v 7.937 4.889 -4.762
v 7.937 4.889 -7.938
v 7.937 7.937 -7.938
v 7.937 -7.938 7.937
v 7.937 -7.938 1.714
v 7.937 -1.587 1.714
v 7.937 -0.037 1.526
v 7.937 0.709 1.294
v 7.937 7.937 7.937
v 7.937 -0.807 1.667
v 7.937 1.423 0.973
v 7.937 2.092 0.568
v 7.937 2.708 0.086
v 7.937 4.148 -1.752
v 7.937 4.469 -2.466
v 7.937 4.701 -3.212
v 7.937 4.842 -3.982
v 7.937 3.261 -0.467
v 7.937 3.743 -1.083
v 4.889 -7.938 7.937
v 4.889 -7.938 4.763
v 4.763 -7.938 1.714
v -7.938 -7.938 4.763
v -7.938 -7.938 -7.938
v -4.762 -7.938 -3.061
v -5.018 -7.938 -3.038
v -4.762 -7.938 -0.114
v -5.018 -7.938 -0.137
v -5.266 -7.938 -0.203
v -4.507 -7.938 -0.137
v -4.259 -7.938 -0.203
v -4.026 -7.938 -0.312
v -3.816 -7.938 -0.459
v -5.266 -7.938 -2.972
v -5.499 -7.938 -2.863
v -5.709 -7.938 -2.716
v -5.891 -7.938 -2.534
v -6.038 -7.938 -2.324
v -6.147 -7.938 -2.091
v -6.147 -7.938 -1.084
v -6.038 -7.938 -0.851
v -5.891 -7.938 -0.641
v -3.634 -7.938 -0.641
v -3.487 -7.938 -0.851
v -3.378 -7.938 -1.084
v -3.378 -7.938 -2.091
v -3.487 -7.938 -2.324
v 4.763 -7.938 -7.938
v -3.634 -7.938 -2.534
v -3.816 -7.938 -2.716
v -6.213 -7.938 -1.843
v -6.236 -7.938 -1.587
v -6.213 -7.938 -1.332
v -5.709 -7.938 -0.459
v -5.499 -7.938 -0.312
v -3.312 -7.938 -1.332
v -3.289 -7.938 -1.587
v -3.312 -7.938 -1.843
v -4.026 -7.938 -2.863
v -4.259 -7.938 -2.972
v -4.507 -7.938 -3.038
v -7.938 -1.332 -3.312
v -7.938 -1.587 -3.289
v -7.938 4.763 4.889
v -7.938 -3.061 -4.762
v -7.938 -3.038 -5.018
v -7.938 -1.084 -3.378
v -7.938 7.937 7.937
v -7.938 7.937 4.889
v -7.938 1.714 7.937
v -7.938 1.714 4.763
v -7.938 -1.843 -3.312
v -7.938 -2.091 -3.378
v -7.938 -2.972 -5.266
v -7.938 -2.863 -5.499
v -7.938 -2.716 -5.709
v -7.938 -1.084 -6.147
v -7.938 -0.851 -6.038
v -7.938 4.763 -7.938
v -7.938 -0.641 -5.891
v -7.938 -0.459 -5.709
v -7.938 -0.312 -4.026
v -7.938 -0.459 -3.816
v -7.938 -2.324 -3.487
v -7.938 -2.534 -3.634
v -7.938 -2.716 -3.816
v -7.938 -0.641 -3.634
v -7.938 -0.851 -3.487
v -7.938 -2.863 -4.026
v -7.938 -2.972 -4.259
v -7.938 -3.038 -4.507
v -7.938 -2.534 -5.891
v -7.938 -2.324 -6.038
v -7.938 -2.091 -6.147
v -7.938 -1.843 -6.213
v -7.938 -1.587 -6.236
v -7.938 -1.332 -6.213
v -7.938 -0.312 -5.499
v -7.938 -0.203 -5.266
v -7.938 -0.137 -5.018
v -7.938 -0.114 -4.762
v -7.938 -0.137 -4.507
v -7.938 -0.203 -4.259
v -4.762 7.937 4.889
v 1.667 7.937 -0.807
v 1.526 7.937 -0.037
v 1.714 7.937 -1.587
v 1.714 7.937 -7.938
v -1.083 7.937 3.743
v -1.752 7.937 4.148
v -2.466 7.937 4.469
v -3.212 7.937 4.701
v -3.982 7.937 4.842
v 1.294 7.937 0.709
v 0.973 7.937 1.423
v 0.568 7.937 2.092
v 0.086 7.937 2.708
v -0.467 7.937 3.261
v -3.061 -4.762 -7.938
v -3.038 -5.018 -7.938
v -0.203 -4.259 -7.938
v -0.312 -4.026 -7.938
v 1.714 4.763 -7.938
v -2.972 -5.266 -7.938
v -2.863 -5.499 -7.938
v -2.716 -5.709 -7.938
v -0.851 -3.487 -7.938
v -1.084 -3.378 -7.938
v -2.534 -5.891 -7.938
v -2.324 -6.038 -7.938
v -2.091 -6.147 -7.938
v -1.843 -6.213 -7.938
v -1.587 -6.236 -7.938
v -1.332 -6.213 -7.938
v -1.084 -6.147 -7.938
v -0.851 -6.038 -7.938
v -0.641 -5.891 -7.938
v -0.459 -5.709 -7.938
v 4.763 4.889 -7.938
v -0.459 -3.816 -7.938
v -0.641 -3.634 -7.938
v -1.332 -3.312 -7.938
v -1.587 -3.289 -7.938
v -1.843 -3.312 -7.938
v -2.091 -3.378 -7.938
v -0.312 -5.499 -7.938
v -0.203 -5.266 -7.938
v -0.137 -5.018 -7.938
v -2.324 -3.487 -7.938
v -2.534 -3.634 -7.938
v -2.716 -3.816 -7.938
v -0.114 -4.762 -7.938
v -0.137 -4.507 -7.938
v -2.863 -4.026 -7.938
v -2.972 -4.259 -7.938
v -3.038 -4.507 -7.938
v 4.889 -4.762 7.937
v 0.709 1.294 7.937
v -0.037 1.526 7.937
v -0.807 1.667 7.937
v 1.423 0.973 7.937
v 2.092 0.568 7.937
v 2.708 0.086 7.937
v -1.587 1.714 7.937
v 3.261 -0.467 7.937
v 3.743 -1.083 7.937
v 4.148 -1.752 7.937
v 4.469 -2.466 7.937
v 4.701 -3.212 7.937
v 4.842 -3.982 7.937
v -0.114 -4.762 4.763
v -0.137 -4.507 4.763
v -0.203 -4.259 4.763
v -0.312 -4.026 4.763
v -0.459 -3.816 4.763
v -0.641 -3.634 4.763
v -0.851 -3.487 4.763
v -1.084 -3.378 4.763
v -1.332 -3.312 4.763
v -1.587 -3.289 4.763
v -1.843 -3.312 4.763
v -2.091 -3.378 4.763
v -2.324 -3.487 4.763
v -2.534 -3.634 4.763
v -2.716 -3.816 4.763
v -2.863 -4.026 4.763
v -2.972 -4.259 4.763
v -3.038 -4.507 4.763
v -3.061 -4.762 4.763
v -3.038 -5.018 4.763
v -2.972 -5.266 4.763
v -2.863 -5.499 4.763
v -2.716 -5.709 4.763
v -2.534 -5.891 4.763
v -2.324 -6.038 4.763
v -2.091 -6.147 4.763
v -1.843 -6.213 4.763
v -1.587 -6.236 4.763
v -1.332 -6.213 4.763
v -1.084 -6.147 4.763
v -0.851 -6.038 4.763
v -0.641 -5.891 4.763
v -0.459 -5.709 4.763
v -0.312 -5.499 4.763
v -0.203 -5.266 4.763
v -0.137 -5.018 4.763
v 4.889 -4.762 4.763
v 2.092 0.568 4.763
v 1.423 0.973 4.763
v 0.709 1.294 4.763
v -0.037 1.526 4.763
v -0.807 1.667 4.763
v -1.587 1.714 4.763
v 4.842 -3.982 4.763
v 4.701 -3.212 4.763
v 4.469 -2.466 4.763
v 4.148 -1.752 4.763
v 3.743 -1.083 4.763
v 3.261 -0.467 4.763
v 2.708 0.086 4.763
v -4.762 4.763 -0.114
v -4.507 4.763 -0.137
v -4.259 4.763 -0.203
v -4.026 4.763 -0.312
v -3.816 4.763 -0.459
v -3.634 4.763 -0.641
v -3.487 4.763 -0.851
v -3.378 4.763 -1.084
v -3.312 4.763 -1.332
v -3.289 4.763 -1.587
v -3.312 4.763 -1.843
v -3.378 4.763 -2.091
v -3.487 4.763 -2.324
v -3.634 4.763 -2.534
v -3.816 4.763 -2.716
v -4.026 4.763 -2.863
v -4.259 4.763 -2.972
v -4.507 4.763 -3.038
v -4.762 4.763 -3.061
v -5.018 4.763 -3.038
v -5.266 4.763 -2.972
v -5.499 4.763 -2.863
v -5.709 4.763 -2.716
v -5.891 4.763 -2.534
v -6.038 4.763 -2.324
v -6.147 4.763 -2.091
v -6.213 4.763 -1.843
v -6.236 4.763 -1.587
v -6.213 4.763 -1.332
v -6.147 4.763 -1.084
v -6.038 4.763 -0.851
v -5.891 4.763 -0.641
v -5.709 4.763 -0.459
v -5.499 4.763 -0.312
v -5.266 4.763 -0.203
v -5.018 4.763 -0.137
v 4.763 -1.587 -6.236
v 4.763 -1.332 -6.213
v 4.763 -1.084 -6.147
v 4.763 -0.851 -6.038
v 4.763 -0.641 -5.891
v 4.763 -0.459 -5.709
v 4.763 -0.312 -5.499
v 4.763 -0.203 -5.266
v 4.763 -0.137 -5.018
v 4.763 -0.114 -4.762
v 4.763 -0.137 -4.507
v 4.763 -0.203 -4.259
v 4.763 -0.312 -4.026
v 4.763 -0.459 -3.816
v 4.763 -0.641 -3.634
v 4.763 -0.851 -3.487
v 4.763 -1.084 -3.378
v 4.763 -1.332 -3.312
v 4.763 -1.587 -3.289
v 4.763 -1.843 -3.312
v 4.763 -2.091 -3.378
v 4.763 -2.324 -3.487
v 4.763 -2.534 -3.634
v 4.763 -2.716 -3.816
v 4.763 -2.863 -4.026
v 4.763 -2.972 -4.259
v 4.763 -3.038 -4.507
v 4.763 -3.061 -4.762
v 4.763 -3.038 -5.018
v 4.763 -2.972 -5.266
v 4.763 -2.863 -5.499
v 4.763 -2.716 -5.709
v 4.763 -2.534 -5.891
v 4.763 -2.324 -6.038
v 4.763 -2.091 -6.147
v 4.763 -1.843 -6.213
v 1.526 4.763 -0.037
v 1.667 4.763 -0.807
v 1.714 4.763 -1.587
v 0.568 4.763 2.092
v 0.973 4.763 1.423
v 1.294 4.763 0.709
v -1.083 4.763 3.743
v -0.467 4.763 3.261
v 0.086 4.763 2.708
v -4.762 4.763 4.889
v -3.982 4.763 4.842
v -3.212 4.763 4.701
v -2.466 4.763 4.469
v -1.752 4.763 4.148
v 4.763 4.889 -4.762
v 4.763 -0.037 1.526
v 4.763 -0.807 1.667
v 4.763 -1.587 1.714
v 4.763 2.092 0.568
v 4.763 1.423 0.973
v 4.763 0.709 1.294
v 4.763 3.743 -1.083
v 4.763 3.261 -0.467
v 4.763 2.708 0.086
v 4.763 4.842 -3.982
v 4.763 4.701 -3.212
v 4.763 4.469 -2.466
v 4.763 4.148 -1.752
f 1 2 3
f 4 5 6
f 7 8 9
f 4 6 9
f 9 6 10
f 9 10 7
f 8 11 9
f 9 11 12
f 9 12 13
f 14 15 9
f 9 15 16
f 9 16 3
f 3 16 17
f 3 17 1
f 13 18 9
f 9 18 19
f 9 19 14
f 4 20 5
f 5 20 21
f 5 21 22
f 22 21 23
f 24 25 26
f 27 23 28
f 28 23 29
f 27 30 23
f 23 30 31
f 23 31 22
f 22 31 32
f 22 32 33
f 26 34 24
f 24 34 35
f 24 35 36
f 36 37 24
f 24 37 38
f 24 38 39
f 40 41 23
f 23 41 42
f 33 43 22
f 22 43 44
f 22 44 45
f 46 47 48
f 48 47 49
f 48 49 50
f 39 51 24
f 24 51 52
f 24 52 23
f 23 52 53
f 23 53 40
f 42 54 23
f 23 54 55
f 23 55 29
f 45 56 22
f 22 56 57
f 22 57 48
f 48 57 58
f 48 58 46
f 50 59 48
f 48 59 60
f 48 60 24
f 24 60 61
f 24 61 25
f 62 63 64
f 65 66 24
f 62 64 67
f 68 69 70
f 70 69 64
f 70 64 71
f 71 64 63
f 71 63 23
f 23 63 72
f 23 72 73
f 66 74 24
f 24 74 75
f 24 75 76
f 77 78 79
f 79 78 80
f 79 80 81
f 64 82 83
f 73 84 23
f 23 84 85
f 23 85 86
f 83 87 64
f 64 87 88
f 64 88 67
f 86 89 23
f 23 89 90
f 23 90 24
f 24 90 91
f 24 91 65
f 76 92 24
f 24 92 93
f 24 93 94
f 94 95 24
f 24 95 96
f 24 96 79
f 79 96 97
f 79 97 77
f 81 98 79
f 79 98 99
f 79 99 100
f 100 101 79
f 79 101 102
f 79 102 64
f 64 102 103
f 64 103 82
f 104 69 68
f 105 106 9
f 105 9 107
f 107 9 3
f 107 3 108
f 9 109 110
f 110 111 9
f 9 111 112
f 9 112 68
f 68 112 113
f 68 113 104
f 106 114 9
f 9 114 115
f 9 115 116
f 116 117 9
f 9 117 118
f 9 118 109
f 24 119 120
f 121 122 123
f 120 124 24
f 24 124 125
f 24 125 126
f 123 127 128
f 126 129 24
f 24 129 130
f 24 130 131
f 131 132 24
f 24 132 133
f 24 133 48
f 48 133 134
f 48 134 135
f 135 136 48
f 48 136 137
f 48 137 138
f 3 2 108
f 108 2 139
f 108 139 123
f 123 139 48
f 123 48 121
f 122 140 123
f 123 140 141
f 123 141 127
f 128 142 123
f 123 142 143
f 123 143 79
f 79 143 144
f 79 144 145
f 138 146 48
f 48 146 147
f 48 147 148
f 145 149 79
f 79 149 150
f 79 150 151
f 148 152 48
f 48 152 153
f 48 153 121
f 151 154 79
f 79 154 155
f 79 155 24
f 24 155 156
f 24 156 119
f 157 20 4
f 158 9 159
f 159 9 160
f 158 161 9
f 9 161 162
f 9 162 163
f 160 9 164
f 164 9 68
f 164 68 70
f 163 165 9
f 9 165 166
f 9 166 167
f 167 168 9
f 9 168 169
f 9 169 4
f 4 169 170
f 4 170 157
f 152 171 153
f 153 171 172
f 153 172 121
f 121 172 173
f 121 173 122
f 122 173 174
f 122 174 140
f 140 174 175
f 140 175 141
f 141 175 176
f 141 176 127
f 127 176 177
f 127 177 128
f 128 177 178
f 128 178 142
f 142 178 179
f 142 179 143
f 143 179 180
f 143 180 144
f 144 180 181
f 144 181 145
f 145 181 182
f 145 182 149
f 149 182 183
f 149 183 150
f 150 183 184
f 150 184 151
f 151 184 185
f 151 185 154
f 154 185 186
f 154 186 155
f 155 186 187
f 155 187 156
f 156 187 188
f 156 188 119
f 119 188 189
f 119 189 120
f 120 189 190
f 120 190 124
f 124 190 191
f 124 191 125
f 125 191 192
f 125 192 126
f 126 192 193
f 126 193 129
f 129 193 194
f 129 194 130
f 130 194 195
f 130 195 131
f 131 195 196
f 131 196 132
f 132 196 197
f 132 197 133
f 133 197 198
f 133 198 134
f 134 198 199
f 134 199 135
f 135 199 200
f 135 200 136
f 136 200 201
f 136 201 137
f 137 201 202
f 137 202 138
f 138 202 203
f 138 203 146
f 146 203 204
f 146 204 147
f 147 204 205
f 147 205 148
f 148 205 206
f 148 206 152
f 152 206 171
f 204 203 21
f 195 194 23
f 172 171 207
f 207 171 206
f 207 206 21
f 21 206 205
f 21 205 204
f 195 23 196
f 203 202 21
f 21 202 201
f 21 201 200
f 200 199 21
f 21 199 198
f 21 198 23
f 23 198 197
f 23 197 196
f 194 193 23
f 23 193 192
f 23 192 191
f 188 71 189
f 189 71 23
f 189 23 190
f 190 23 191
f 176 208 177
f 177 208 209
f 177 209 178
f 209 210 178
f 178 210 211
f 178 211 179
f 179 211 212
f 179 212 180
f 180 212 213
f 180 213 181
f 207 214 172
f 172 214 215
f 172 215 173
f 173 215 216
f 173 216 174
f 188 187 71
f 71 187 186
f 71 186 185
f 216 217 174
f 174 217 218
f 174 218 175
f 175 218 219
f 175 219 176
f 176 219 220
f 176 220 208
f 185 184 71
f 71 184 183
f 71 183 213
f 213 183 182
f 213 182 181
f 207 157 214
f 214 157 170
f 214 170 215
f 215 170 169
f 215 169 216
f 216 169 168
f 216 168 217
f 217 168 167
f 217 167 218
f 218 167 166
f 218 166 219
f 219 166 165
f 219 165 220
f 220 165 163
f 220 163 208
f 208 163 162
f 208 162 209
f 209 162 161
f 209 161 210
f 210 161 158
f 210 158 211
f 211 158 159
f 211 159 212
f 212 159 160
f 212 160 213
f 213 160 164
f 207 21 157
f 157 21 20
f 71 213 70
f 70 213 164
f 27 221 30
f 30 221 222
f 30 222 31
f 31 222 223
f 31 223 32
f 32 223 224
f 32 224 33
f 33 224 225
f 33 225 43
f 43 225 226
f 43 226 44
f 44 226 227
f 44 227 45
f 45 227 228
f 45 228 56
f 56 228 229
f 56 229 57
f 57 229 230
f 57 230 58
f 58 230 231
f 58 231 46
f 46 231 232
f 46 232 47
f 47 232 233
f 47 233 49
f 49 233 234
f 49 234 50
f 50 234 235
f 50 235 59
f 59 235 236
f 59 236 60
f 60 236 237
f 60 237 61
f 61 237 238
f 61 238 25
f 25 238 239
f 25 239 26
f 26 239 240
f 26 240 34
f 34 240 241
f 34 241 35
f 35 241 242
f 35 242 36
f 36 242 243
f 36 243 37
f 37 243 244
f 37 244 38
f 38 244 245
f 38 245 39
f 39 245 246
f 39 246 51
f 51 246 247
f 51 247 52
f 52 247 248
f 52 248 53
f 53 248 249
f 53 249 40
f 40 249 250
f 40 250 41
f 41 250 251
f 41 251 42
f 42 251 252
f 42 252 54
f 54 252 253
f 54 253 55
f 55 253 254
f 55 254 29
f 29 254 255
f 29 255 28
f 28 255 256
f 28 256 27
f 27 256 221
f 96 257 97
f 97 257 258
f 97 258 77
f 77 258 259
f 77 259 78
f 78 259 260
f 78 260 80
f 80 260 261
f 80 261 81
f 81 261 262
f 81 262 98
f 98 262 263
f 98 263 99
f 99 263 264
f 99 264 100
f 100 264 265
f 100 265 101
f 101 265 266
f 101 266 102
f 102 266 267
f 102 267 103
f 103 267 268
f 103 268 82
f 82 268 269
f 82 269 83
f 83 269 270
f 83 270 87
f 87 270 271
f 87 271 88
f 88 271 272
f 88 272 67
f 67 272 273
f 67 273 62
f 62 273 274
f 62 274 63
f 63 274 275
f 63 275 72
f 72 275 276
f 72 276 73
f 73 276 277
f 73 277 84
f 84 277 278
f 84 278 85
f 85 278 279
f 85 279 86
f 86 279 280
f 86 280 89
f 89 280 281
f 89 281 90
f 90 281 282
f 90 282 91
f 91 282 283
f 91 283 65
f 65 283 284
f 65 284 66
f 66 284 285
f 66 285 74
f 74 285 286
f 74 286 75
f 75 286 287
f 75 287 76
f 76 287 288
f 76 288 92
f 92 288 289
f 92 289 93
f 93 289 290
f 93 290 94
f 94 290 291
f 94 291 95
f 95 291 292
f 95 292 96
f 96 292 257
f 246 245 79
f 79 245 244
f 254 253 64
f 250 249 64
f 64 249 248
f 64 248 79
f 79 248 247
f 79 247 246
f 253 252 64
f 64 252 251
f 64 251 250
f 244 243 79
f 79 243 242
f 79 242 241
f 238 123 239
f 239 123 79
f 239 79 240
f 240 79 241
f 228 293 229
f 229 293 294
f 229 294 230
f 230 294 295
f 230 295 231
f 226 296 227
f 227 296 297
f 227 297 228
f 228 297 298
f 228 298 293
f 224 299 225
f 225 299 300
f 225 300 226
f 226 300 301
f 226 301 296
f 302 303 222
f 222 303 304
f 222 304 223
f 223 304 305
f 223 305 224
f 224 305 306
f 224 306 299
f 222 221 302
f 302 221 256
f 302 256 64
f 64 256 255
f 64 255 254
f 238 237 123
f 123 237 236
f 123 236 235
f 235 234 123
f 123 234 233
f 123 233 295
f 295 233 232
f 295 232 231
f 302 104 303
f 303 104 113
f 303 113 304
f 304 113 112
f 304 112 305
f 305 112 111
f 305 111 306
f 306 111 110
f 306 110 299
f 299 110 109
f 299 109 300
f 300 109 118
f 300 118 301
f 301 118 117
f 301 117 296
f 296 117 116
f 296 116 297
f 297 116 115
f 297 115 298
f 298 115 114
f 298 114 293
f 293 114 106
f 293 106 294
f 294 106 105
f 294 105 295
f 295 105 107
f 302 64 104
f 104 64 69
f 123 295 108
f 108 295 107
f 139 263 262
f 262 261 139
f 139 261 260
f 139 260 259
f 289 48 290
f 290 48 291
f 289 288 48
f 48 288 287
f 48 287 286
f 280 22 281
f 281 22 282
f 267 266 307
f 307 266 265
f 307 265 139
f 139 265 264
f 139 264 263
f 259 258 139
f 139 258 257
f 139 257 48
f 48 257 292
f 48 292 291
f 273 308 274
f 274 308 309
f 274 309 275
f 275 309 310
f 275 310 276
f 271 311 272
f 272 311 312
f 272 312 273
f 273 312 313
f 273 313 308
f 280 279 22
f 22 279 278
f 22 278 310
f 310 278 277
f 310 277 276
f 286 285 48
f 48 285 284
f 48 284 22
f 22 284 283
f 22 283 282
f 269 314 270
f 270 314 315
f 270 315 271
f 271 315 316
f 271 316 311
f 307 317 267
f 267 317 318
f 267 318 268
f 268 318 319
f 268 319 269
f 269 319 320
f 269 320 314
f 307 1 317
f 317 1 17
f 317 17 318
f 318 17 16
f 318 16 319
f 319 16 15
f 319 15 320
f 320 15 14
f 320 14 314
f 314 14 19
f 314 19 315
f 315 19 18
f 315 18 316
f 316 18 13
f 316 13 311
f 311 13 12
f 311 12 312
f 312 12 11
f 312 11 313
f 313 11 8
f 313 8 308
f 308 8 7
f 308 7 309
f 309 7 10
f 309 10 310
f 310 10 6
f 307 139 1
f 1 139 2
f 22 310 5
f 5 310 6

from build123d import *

# Parameters (mm, degrees)
CUBE_BASE_DEPTH       = 7.9375
CUBE_BASE_DEPTH_BACK  = 7.9375
SKETCH2_W             = 15.875
SKETCH2_H             = 15.875
F_4_CLEARANCE_HOLE1_D = 2.9464
FRAME_RELIEF_DEPTH    = 3.175
CIRPATTERN1_COUNT     = 3


with BuildPart() as part:
    # Sketch2 → CUBE-BASE (new, two sides: drawn at the far end of the back side and taken through both)
    with BuildSketch(Plane.XY.offset(-CUBE_BASE_DEPTH_BACK)):
        Rectangle(SKETCH2_W, SKETCH2_H)
    extrude(amount=CUBE_BASE_DEPTH + CUBE_BASE_DEPTH_BACK)

    # #4 Clearance Hole1 (through all)
    with Locations(Plane.XY.offset(7.9375)):
        with Locations((-1.5875, -4.7625)):
            f_4_clearance_hole1 = Hole(F_4_CLEARANCE_HOLE1_D / 2)

    # Sketch5 → FRAME-RELIEF (cut)
    with BuildSketch(Plane.XY.offset(7.9375)):
        with BuildLine():
            Line((-1.5875, 1.7145), (-7.9375, 1.7145))
            Line((-7.9375, 1.7145), (-7.9375, -7.9375))
            Line((-7.9375, -7.9375), (4.8895, -7.9375))
            Line((4.8895, -7.9375), (4.8895, -4.7625))
            ThreePointArc((4.8895, -4.7625), (2.992430622, -0.182569378), (-1.5875, 1.7145))
        make_face()
    frame_relief = extrude(amount=-FRAME_RELIEF_DEPTH, mode=Mode.SUBTRACT)

    # CirPattern1: #4 Clearance Hole1, FRAME-RELIEF ×3 about axis
    cirpattern1_axis = Axis((7.9375, 7.9375, 7.9375), (-0.5773502691896257, -0.5773502691896257, -0.5773502691896257))
    add([f_4_clearance_hole1.rotate(cirpattern1_axis, i * 360 / CIRPATTERN1_COUNT) for i in range(1, CIRPATTERN1_COUNT)], mode=Mode.SUBTRACT)
    add([frame_relief.rotate(cirpattern1_axis, i * 360 / CIRPATTERN1_COUNT) for i in range(1, CIRPATTERN1_COUNT)], mode=Mode.SUBTRACT)


solid = part.part
